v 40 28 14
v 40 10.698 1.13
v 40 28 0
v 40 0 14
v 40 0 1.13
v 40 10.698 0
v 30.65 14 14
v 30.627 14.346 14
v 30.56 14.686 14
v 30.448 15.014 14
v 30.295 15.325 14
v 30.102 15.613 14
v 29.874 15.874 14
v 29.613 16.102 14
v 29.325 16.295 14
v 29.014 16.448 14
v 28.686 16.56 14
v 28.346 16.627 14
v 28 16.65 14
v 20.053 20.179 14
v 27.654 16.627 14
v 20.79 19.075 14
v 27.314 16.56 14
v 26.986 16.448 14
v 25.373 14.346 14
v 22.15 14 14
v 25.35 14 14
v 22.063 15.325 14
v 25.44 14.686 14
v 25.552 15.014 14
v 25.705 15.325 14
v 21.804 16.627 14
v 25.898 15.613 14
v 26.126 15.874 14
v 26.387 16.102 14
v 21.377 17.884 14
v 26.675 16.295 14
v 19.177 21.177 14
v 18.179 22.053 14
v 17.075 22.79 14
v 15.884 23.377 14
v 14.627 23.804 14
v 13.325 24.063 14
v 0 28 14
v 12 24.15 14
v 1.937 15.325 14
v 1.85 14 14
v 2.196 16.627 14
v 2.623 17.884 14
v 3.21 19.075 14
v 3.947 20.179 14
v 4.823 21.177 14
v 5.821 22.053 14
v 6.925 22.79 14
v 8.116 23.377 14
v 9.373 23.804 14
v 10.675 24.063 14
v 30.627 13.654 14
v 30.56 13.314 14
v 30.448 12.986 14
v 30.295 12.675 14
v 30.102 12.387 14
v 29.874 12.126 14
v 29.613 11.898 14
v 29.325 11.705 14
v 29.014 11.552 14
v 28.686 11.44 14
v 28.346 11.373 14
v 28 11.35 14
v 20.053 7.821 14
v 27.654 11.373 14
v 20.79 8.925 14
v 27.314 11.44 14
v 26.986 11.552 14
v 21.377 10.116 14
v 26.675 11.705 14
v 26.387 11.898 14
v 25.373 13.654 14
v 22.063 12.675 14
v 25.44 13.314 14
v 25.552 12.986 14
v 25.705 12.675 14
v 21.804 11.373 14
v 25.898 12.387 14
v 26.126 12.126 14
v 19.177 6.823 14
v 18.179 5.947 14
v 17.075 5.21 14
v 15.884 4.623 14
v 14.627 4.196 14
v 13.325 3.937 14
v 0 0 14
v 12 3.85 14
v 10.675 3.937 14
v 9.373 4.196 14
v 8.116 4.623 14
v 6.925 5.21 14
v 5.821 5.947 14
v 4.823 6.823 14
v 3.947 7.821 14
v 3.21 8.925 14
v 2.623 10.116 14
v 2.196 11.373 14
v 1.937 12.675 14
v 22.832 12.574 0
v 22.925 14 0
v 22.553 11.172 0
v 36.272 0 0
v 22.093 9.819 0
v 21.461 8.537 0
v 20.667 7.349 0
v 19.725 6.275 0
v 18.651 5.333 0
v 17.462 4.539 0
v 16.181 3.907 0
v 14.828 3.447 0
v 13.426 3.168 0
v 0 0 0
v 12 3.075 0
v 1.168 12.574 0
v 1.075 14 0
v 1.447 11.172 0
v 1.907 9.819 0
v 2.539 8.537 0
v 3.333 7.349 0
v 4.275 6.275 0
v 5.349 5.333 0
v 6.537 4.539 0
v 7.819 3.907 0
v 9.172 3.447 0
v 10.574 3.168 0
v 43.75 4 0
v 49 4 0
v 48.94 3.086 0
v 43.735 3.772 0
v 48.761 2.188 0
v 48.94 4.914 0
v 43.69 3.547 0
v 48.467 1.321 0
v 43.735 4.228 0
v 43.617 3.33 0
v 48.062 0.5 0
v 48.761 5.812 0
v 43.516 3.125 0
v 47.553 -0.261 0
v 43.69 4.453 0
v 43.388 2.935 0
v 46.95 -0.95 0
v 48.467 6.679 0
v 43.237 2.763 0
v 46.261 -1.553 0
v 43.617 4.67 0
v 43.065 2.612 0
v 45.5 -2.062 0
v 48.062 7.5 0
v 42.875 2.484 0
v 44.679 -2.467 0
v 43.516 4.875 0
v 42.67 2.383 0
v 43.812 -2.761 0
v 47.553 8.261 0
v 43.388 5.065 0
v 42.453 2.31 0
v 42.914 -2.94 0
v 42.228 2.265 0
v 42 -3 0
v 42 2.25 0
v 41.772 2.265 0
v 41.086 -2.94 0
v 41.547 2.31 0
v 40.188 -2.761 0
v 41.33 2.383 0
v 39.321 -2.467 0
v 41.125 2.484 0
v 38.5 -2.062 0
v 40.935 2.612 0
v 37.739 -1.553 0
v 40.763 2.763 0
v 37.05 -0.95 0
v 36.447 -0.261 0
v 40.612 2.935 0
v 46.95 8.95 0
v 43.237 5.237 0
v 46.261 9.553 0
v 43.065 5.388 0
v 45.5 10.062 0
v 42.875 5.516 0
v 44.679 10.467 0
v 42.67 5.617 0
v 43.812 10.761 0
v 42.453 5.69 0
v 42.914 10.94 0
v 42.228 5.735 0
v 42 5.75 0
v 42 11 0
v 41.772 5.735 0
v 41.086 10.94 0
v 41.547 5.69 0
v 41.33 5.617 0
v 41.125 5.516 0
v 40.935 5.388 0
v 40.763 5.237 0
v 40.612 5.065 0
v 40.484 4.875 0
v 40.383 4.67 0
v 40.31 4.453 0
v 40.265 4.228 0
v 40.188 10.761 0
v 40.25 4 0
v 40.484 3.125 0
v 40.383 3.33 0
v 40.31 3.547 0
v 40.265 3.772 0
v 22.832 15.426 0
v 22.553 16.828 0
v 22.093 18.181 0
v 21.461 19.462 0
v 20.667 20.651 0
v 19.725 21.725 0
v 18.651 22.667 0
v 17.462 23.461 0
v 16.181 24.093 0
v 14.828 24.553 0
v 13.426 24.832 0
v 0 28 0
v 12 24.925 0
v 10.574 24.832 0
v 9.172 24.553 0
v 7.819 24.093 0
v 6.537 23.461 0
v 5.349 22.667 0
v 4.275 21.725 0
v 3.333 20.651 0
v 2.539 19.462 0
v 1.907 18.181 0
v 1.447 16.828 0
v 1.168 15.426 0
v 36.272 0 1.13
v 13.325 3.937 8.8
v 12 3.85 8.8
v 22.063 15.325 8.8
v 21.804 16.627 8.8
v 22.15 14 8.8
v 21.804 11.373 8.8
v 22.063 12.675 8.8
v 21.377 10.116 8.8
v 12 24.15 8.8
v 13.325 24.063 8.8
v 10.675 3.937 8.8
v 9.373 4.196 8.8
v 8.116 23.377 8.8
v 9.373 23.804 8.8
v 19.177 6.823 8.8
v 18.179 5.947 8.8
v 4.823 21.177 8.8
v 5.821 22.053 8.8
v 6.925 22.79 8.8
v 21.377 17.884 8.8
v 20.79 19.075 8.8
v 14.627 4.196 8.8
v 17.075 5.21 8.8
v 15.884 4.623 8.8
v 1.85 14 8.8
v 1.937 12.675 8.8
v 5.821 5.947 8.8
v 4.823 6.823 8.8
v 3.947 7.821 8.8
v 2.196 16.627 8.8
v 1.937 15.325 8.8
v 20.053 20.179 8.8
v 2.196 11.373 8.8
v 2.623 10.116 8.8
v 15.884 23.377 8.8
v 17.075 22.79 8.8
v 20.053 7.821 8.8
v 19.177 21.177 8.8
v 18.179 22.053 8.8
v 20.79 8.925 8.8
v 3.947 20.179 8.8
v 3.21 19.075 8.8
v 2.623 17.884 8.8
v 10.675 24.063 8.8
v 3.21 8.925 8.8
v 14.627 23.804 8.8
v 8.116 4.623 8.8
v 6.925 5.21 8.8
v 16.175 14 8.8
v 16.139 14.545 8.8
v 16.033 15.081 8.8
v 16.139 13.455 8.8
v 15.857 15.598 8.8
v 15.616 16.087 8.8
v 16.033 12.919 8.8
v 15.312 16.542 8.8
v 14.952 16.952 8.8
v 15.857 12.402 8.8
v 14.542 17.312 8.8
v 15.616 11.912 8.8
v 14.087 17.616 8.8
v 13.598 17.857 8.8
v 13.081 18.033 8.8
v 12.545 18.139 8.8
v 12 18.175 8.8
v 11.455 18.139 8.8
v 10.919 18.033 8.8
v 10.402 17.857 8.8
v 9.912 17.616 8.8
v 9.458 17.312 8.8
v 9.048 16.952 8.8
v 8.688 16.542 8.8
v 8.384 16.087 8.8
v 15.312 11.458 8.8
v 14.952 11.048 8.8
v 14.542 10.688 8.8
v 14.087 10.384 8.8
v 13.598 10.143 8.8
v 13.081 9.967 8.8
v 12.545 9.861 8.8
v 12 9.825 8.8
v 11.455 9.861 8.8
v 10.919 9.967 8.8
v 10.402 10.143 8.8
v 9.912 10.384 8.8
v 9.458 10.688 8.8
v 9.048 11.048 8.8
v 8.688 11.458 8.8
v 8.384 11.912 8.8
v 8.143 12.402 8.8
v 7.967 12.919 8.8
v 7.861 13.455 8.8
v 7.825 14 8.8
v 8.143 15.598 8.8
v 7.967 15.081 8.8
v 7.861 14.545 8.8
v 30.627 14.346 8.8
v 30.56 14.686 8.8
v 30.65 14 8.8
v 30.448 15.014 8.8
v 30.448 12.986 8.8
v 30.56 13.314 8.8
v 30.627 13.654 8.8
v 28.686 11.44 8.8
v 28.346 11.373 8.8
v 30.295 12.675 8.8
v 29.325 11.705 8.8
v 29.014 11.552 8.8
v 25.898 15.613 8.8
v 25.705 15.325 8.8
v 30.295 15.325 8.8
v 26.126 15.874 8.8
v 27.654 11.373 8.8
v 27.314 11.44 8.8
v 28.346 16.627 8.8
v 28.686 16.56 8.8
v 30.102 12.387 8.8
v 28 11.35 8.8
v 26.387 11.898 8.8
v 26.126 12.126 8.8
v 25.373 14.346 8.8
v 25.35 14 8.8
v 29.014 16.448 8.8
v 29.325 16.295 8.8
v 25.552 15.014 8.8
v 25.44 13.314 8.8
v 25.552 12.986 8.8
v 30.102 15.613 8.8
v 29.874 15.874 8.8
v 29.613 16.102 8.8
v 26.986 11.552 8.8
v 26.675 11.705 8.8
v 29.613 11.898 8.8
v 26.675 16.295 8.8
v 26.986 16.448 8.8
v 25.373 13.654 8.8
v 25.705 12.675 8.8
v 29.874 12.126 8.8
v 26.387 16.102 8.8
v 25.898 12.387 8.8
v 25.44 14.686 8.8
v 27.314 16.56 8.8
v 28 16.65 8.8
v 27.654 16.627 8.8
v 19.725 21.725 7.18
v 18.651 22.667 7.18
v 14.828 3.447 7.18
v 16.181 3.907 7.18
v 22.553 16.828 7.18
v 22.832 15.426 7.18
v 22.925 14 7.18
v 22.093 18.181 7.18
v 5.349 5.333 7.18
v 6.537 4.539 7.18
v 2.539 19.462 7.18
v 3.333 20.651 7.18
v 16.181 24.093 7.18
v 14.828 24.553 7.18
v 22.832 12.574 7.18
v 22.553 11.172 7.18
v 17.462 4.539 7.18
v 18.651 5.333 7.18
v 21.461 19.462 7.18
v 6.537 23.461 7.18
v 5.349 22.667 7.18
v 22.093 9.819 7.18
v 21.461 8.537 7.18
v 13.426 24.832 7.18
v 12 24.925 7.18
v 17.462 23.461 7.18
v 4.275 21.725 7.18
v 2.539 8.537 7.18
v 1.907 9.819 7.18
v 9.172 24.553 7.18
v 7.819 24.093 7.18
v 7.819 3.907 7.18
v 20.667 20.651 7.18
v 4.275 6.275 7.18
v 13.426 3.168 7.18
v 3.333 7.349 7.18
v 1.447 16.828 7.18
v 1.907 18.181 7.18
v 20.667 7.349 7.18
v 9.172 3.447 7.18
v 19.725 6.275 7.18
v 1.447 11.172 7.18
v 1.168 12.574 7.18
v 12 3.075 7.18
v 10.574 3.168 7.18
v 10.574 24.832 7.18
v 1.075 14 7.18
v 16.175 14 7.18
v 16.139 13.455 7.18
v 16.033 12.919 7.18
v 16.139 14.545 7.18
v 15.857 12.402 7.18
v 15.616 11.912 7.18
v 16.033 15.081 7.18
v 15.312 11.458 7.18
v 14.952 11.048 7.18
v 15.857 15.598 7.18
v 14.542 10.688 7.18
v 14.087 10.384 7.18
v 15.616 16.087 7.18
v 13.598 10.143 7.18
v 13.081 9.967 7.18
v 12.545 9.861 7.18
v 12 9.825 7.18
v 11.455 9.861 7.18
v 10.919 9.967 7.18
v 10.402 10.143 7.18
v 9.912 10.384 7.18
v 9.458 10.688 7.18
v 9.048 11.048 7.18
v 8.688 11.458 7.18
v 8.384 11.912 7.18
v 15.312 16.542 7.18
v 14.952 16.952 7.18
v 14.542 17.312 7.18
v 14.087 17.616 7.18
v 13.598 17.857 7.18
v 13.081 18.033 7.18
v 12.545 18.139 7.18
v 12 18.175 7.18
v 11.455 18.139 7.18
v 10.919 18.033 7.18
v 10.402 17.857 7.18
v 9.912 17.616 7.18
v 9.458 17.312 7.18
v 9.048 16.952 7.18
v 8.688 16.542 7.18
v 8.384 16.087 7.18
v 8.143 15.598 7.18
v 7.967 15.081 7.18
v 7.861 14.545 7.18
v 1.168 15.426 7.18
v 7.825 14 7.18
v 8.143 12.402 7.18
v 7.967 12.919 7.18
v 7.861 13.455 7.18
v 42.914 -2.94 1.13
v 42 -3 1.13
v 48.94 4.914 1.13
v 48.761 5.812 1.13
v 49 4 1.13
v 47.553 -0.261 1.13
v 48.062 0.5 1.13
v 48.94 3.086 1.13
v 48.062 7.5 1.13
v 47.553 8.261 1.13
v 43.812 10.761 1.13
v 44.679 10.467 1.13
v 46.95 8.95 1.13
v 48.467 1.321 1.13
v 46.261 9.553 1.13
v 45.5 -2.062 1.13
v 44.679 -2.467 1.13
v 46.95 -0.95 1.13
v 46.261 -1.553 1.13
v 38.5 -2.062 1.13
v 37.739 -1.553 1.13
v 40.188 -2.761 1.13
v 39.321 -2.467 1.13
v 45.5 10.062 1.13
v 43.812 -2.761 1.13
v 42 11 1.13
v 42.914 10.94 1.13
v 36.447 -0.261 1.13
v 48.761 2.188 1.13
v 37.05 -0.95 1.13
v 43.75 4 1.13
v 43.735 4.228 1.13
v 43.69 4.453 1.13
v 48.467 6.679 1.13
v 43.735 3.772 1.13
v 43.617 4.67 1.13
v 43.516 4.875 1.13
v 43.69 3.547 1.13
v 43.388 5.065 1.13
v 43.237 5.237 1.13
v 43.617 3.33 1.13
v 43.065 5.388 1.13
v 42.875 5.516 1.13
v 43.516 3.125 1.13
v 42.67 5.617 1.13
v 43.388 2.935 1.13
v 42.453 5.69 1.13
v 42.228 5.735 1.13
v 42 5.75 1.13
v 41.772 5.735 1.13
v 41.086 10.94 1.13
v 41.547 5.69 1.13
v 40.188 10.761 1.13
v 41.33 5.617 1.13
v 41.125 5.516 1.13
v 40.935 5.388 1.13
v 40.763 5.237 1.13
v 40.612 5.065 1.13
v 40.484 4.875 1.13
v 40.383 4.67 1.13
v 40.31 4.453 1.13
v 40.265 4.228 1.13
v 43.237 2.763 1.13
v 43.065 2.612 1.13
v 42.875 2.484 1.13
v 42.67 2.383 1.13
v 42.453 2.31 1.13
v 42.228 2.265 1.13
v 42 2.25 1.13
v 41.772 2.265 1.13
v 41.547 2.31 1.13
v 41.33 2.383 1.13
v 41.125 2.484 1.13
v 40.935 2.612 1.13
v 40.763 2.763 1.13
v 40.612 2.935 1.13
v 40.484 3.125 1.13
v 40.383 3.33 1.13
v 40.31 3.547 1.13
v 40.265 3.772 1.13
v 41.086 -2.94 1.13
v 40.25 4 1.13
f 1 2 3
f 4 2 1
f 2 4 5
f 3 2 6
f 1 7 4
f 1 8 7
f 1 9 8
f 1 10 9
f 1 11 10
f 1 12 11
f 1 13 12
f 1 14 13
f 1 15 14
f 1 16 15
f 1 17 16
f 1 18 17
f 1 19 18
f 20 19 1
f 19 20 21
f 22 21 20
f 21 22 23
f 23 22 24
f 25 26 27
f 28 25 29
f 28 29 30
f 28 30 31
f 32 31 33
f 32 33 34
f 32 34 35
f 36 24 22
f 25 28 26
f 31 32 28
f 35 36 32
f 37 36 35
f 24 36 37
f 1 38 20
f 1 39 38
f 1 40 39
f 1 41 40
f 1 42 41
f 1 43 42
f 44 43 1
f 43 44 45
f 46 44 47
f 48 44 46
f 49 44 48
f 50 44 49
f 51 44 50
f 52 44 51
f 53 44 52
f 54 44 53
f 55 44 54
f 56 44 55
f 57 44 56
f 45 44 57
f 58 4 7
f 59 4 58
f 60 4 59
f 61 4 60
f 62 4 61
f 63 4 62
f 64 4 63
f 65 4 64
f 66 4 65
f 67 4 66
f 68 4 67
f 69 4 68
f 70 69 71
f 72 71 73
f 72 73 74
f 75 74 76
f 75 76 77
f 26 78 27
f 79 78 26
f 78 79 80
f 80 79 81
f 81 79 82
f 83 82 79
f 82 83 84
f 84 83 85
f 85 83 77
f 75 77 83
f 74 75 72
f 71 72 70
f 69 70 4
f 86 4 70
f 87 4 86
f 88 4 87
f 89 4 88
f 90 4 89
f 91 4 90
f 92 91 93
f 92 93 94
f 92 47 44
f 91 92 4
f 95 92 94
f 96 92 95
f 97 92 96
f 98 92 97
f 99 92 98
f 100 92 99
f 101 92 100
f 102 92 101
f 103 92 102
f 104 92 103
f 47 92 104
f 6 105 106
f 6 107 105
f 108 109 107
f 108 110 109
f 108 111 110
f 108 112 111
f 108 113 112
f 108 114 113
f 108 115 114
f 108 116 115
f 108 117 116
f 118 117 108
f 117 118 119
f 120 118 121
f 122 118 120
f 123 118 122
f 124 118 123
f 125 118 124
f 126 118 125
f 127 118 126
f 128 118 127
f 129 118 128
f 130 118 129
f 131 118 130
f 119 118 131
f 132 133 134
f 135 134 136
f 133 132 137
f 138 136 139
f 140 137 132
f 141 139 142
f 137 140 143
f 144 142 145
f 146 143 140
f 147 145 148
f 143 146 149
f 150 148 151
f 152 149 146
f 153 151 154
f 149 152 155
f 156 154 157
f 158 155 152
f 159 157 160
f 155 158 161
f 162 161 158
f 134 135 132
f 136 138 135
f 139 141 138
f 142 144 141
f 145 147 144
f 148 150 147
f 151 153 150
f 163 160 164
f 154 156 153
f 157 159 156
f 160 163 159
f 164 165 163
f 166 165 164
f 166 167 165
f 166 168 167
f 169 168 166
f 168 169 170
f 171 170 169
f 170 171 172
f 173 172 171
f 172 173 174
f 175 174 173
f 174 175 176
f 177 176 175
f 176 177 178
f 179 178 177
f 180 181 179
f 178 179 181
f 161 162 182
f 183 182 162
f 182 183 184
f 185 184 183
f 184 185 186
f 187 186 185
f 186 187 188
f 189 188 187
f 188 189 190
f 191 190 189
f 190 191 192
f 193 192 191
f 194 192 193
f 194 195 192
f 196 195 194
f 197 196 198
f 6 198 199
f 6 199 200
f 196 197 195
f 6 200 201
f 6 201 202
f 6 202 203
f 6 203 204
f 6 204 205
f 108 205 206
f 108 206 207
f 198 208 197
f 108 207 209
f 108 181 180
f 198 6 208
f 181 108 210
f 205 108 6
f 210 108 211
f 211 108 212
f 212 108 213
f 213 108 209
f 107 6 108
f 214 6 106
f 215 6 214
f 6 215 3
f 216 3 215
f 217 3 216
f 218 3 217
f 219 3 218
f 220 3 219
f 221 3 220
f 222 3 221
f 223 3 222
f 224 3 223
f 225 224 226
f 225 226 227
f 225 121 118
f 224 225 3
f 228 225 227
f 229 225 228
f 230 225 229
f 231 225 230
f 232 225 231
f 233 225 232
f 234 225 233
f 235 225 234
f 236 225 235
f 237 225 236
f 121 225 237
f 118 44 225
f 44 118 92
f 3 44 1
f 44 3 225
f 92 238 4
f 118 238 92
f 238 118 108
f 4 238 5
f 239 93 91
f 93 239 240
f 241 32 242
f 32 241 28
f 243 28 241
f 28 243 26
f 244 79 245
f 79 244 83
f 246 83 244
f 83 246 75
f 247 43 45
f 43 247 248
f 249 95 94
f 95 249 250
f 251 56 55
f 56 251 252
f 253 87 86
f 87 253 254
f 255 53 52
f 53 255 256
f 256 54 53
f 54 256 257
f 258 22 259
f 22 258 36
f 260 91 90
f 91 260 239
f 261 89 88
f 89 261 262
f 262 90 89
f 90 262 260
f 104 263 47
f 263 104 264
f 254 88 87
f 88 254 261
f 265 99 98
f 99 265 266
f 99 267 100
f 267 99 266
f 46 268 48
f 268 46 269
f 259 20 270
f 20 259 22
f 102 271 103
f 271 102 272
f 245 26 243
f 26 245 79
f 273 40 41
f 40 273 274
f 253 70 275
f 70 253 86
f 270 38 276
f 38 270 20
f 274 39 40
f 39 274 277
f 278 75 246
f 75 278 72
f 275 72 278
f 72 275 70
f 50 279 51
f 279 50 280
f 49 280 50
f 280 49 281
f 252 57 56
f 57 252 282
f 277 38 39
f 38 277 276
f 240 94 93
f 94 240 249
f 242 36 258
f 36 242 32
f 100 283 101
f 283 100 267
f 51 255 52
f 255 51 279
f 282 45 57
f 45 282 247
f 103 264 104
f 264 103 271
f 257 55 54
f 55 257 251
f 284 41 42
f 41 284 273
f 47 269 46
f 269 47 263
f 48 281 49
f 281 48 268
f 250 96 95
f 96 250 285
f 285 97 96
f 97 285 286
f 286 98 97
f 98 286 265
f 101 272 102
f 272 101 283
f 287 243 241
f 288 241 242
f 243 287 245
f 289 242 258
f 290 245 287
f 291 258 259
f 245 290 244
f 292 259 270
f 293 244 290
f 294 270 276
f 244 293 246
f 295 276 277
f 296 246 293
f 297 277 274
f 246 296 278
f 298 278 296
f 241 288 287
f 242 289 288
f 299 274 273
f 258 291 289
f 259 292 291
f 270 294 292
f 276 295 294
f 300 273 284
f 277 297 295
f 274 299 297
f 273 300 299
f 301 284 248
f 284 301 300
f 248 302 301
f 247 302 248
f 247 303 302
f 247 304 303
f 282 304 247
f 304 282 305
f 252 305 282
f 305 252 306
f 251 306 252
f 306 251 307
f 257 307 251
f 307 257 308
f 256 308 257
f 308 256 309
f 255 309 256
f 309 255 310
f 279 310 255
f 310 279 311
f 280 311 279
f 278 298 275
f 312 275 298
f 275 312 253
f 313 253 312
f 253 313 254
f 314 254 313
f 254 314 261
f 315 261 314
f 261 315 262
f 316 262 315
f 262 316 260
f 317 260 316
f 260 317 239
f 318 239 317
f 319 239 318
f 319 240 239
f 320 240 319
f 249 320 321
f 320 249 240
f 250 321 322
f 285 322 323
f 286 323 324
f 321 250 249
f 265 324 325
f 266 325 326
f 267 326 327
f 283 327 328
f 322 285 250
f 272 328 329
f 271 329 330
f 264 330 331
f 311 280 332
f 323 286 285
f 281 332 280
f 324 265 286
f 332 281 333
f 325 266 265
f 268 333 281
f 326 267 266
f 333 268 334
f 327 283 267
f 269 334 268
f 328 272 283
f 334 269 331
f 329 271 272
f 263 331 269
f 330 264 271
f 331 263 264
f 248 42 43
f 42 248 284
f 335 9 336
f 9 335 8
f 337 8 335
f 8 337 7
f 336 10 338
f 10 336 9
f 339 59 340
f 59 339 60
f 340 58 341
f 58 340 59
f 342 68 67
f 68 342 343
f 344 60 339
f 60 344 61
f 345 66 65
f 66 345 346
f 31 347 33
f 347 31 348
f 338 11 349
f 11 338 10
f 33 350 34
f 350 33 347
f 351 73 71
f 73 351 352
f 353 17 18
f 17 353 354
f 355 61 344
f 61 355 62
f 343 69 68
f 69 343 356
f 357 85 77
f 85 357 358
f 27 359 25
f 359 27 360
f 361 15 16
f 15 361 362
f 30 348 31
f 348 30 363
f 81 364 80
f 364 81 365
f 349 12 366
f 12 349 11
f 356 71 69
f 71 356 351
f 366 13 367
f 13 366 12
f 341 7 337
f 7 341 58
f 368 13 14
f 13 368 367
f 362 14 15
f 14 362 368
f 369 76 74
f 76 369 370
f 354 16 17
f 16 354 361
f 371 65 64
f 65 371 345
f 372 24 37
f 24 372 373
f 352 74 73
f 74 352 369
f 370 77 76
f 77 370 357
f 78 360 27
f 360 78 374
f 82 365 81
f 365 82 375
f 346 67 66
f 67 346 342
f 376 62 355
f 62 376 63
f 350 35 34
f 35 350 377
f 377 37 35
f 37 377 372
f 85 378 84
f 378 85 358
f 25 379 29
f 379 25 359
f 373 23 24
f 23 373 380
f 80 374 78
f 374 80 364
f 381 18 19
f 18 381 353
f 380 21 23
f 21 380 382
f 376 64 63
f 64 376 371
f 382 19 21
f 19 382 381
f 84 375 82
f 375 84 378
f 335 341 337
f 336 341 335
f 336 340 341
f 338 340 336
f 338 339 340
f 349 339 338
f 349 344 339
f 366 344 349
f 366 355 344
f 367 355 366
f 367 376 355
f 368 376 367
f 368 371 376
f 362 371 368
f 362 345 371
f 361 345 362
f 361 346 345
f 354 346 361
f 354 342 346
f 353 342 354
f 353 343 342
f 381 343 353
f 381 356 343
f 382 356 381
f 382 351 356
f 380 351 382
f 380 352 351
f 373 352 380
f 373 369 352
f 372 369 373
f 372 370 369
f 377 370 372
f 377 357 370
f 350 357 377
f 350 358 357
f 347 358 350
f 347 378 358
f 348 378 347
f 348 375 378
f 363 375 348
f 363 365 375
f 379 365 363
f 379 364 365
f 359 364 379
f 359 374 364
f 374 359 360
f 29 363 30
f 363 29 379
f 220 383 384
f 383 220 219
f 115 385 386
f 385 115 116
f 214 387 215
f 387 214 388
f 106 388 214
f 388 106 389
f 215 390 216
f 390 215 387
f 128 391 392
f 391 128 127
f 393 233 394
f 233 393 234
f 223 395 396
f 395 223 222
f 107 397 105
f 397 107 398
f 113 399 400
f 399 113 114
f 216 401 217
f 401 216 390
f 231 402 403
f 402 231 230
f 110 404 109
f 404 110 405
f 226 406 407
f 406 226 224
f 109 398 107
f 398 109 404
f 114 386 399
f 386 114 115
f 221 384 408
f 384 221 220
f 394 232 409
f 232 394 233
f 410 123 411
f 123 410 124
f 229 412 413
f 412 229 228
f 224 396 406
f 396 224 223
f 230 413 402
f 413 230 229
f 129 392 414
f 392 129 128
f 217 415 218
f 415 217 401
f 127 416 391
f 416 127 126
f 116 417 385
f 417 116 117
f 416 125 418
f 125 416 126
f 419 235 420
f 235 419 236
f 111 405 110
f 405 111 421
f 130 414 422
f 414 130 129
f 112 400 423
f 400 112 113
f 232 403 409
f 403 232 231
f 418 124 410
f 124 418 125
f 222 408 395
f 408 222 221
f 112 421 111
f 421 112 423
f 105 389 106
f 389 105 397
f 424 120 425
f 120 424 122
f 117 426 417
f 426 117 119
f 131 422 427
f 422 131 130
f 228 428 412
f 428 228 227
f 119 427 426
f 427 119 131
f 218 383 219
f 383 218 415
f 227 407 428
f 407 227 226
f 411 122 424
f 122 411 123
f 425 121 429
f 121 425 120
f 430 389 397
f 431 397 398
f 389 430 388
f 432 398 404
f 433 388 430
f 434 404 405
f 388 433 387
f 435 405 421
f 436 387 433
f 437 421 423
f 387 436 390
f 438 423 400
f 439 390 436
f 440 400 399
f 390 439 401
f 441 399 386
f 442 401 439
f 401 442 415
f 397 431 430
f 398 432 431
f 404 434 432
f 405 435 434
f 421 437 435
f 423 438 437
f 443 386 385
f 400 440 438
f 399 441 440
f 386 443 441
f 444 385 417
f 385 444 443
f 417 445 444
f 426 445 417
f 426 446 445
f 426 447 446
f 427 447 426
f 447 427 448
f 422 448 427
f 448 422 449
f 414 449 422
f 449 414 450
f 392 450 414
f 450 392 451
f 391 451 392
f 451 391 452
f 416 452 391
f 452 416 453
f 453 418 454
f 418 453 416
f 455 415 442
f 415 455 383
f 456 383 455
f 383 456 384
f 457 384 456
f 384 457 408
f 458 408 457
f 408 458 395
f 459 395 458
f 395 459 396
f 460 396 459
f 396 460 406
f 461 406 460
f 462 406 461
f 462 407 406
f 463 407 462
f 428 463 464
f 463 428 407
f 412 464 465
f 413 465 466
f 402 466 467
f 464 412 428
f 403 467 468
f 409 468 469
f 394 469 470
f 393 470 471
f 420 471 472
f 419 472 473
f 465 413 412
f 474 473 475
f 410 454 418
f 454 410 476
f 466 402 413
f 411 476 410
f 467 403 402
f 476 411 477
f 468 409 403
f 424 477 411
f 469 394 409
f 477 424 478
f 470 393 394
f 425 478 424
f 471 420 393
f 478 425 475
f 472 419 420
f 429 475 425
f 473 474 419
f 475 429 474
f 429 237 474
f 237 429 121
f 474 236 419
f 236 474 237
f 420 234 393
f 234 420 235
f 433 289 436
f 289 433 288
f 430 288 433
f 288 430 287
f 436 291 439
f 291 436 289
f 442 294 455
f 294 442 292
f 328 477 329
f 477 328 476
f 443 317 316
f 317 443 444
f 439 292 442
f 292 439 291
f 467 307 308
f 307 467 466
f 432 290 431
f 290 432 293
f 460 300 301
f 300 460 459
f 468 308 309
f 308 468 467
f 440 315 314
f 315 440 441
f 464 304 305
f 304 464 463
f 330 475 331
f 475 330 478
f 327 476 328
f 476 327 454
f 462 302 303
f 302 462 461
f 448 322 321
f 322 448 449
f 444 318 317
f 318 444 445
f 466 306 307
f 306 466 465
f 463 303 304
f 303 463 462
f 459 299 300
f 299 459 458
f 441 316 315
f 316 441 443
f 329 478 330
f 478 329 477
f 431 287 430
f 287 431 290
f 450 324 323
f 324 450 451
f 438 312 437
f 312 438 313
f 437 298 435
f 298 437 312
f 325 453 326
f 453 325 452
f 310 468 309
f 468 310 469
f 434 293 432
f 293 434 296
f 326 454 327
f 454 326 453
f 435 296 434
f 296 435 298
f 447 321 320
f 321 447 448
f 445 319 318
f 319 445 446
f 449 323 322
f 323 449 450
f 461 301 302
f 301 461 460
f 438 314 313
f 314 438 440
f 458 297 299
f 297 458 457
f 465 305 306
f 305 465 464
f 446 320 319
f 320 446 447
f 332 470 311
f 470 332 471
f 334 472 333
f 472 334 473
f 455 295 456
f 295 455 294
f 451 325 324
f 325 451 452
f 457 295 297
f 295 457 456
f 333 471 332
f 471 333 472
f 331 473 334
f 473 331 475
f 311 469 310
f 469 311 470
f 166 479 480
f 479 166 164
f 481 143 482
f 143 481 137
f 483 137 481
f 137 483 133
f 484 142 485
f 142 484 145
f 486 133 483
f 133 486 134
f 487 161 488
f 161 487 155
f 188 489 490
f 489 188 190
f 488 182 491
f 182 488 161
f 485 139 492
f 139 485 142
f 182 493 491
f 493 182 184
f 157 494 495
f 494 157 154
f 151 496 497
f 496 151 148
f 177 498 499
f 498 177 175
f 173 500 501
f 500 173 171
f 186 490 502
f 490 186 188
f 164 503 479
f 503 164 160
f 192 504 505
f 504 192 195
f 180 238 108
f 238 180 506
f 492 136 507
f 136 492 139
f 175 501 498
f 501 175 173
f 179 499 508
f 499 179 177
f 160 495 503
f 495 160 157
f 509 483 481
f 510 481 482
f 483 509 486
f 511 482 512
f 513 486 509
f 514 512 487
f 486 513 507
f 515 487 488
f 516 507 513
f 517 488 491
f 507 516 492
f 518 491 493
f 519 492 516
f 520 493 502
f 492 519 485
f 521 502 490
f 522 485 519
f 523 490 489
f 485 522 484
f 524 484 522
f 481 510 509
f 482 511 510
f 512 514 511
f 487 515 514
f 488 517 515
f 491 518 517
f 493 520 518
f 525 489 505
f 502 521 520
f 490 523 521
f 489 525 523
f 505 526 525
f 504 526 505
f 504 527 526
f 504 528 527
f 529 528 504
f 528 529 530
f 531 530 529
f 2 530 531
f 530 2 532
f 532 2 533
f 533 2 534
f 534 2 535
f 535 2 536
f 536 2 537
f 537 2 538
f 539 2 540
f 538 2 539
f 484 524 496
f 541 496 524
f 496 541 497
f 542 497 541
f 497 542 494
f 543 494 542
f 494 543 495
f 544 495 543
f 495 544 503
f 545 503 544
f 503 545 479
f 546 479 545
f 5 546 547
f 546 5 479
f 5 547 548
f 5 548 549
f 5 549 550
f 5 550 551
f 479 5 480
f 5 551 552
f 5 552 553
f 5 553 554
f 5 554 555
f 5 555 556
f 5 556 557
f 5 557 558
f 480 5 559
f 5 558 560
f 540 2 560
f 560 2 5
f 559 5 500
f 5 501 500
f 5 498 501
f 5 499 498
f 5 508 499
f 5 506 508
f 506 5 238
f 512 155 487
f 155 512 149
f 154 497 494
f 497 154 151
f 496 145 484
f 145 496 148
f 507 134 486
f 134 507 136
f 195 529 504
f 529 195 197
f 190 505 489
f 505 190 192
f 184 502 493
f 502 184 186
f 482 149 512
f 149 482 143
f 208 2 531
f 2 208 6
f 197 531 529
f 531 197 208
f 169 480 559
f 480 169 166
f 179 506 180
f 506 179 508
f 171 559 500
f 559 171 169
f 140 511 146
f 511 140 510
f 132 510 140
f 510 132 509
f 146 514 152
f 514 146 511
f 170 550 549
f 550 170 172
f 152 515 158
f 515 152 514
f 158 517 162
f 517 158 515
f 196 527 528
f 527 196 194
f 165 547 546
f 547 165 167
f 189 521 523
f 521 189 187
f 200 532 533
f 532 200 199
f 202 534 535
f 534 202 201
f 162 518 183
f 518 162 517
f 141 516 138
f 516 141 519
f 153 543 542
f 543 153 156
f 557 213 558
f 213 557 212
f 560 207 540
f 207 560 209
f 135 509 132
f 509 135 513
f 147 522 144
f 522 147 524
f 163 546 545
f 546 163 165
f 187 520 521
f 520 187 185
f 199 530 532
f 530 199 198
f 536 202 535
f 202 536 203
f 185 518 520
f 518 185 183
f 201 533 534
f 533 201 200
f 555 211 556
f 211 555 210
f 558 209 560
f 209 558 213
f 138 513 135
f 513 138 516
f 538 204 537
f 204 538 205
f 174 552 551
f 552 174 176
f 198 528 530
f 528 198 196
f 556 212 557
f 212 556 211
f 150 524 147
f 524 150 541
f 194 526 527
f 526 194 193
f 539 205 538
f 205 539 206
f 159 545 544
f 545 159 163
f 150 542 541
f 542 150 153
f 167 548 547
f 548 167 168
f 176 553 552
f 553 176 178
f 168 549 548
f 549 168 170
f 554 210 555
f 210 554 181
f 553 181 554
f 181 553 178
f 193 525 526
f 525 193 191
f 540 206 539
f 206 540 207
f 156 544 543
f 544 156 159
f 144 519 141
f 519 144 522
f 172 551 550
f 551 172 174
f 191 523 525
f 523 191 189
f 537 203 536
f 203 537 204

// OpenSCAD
// file: parameters.scad
// =============================================================================
// Gen-AT Dual-rotor copper-centroid hypermicro AFPM - WOUND-AWARE (HARD GATE)
// PRIMARY challenger vs Gen-AQ. Magnets @ R=38.5 + 210 t + former_web 1.22 -> m2m 4.68.
// =============================================================================

// --- Wire / wind budget (26 AWG, ~1 lb spool ~ 390 m bare-equiv) --------------
wire_awg            = 26;
wire_od             = 0.45;     // insulated OD mm
turns               = 210;      // +5 vs Gen-AQ 205
fill                = 0.70;
layers_per_face     = 2;        // axial layers proud of EACH flange
wind_build_axial    = layers_per_face * wire_od * fill;   // 0.63 mm
wind_build_radial   = 3 * wire_od * fill;                 // 0.945 mm

// --- Pancake former (bare STL) -----------------------------------------------
coil_id_r           = 14.5;     // copper-centroid window centered ~R=38.5
coil_od_r           = 62.5;
span_deg            = 26.0;     // 12 stations x 30 deg pitch
former_web          = 1.22;     // thinner vs AQ 1.25 (print-safe >=1.20 LB)
flange_t            = 0.60;
wall                = 1.2;
slot_w              = 2.4;
mount_hole          = 3.5;
tab_len             = 7.0;

former_bare_h       = former_web + 2 * flange_t;            // 2.42 mm
coil_envelope_h     = former_bare_h + 2 * wind_build_axial; // 3.68 mm

// --- Running clearance (magnet face -> WOUND face) EACH side ------------------
run_clear           = 0.50;     // PASS floor >= 0.5
gap_spacer_h        = run_clear + wind_build_axial;         // 1.13 mm
m2m                 = coil_envelope_h + 2 * run_clear;      // 4.68 mm (beats Gen-AQ 4.71)

// --- Mid stator (12 pancakes 3ph; winds proud both faces) ---------------------
coil_stations       = 12;
bay_r_in            = coil_id_r - 2.0 - wind_build_radial;
bay_r_out           = coil_od_r + 2.0 + wind_build_radial;
bay_span            = span_deg + 4.0;
bay_offset          = 2.0;
stator_thick        = former_bare_h;                        // winds proud +/-Z
stator_od           = 160.0;
shaft_clear_stator  = 34.0;
coil_mount_r        = 25.0;

// --- Rotors (x2) - 8xO20 @ R=38.5 (copper centroid) + 24xO5 Halbach ----------
large_pocket_d      = 20.3;
small_pocket_d      = 5.3;
pocket_h            = 5.2;
large_n             = 8;
R_large             = 38.5;     // covers ~28.5-48.5 over copper centroid ~38.5
R_small_inner       = 23.5;
R_small_mid         = 38.5;
R_small_outer       = 55.5;
carrier_od          = 156.0;
carrier_thick       = 7.5;
hub_h               = 10.0;
hub_od              = 30.0;
rotor_b_offset_deg  = 22.5;

// --- Modular MAX interface (Gen-E family) ------------------------------------
shaft_bore          = 8.35;
bearing_d           = 21.85;
bearing_h           = 7.2;
m3_clear            = 3.5;
bolt_r_inner        = 36.0;
bolt_n_inner        = 6;
flange_bolt_r       = 72.0;
flange_bolt_n       = 6;
brace_r             = 68.0;
brace_d             = 4.3;
brace_n             = 4;

spacer_pad_od       = 14.0;
spacer_pad_id       = m3_clear;
endbell_od          = 160.0;
endbell_thick       = 8.0;
endbell_shaft_clear = 10.0;

$fn = 64;
// main file
// Gen-AT fit coupon — magnet pockets + 608 + spacer height
include <parameters.scad>;
$fn = 48;
block_w = 40; block_d = 28; block_h = 14;
difference() {
    cube([block_w, block_d, block_h]);
    translate([12, block_d/2, block_h - pocket_h])
        cylinder(d=large_pocket_d, h=pocket_h + 0.2);
    translate([28, block_d/2, block_h - pocket_h])
        cylinder(d=small_pocket_d, h=pocket_h + 0.2);
    translate([12, block_d/2, -0.02])
        cylinder(d=bearing_d, h=bearing_h);
    translate([12, block_d/2, -0.1])
        cylinder(d=shaft_bore, h=block_h + 1);
}
translate([block_w + 2, 4, 0])
    difference() {
        cylinder(d=spacer_pad_od, h=gap_spacer_h);
        translate([0, 0, -0.1]) cylinder(d=spacer_pad_id, h=gap_spacer_h + 0.2);
    }
